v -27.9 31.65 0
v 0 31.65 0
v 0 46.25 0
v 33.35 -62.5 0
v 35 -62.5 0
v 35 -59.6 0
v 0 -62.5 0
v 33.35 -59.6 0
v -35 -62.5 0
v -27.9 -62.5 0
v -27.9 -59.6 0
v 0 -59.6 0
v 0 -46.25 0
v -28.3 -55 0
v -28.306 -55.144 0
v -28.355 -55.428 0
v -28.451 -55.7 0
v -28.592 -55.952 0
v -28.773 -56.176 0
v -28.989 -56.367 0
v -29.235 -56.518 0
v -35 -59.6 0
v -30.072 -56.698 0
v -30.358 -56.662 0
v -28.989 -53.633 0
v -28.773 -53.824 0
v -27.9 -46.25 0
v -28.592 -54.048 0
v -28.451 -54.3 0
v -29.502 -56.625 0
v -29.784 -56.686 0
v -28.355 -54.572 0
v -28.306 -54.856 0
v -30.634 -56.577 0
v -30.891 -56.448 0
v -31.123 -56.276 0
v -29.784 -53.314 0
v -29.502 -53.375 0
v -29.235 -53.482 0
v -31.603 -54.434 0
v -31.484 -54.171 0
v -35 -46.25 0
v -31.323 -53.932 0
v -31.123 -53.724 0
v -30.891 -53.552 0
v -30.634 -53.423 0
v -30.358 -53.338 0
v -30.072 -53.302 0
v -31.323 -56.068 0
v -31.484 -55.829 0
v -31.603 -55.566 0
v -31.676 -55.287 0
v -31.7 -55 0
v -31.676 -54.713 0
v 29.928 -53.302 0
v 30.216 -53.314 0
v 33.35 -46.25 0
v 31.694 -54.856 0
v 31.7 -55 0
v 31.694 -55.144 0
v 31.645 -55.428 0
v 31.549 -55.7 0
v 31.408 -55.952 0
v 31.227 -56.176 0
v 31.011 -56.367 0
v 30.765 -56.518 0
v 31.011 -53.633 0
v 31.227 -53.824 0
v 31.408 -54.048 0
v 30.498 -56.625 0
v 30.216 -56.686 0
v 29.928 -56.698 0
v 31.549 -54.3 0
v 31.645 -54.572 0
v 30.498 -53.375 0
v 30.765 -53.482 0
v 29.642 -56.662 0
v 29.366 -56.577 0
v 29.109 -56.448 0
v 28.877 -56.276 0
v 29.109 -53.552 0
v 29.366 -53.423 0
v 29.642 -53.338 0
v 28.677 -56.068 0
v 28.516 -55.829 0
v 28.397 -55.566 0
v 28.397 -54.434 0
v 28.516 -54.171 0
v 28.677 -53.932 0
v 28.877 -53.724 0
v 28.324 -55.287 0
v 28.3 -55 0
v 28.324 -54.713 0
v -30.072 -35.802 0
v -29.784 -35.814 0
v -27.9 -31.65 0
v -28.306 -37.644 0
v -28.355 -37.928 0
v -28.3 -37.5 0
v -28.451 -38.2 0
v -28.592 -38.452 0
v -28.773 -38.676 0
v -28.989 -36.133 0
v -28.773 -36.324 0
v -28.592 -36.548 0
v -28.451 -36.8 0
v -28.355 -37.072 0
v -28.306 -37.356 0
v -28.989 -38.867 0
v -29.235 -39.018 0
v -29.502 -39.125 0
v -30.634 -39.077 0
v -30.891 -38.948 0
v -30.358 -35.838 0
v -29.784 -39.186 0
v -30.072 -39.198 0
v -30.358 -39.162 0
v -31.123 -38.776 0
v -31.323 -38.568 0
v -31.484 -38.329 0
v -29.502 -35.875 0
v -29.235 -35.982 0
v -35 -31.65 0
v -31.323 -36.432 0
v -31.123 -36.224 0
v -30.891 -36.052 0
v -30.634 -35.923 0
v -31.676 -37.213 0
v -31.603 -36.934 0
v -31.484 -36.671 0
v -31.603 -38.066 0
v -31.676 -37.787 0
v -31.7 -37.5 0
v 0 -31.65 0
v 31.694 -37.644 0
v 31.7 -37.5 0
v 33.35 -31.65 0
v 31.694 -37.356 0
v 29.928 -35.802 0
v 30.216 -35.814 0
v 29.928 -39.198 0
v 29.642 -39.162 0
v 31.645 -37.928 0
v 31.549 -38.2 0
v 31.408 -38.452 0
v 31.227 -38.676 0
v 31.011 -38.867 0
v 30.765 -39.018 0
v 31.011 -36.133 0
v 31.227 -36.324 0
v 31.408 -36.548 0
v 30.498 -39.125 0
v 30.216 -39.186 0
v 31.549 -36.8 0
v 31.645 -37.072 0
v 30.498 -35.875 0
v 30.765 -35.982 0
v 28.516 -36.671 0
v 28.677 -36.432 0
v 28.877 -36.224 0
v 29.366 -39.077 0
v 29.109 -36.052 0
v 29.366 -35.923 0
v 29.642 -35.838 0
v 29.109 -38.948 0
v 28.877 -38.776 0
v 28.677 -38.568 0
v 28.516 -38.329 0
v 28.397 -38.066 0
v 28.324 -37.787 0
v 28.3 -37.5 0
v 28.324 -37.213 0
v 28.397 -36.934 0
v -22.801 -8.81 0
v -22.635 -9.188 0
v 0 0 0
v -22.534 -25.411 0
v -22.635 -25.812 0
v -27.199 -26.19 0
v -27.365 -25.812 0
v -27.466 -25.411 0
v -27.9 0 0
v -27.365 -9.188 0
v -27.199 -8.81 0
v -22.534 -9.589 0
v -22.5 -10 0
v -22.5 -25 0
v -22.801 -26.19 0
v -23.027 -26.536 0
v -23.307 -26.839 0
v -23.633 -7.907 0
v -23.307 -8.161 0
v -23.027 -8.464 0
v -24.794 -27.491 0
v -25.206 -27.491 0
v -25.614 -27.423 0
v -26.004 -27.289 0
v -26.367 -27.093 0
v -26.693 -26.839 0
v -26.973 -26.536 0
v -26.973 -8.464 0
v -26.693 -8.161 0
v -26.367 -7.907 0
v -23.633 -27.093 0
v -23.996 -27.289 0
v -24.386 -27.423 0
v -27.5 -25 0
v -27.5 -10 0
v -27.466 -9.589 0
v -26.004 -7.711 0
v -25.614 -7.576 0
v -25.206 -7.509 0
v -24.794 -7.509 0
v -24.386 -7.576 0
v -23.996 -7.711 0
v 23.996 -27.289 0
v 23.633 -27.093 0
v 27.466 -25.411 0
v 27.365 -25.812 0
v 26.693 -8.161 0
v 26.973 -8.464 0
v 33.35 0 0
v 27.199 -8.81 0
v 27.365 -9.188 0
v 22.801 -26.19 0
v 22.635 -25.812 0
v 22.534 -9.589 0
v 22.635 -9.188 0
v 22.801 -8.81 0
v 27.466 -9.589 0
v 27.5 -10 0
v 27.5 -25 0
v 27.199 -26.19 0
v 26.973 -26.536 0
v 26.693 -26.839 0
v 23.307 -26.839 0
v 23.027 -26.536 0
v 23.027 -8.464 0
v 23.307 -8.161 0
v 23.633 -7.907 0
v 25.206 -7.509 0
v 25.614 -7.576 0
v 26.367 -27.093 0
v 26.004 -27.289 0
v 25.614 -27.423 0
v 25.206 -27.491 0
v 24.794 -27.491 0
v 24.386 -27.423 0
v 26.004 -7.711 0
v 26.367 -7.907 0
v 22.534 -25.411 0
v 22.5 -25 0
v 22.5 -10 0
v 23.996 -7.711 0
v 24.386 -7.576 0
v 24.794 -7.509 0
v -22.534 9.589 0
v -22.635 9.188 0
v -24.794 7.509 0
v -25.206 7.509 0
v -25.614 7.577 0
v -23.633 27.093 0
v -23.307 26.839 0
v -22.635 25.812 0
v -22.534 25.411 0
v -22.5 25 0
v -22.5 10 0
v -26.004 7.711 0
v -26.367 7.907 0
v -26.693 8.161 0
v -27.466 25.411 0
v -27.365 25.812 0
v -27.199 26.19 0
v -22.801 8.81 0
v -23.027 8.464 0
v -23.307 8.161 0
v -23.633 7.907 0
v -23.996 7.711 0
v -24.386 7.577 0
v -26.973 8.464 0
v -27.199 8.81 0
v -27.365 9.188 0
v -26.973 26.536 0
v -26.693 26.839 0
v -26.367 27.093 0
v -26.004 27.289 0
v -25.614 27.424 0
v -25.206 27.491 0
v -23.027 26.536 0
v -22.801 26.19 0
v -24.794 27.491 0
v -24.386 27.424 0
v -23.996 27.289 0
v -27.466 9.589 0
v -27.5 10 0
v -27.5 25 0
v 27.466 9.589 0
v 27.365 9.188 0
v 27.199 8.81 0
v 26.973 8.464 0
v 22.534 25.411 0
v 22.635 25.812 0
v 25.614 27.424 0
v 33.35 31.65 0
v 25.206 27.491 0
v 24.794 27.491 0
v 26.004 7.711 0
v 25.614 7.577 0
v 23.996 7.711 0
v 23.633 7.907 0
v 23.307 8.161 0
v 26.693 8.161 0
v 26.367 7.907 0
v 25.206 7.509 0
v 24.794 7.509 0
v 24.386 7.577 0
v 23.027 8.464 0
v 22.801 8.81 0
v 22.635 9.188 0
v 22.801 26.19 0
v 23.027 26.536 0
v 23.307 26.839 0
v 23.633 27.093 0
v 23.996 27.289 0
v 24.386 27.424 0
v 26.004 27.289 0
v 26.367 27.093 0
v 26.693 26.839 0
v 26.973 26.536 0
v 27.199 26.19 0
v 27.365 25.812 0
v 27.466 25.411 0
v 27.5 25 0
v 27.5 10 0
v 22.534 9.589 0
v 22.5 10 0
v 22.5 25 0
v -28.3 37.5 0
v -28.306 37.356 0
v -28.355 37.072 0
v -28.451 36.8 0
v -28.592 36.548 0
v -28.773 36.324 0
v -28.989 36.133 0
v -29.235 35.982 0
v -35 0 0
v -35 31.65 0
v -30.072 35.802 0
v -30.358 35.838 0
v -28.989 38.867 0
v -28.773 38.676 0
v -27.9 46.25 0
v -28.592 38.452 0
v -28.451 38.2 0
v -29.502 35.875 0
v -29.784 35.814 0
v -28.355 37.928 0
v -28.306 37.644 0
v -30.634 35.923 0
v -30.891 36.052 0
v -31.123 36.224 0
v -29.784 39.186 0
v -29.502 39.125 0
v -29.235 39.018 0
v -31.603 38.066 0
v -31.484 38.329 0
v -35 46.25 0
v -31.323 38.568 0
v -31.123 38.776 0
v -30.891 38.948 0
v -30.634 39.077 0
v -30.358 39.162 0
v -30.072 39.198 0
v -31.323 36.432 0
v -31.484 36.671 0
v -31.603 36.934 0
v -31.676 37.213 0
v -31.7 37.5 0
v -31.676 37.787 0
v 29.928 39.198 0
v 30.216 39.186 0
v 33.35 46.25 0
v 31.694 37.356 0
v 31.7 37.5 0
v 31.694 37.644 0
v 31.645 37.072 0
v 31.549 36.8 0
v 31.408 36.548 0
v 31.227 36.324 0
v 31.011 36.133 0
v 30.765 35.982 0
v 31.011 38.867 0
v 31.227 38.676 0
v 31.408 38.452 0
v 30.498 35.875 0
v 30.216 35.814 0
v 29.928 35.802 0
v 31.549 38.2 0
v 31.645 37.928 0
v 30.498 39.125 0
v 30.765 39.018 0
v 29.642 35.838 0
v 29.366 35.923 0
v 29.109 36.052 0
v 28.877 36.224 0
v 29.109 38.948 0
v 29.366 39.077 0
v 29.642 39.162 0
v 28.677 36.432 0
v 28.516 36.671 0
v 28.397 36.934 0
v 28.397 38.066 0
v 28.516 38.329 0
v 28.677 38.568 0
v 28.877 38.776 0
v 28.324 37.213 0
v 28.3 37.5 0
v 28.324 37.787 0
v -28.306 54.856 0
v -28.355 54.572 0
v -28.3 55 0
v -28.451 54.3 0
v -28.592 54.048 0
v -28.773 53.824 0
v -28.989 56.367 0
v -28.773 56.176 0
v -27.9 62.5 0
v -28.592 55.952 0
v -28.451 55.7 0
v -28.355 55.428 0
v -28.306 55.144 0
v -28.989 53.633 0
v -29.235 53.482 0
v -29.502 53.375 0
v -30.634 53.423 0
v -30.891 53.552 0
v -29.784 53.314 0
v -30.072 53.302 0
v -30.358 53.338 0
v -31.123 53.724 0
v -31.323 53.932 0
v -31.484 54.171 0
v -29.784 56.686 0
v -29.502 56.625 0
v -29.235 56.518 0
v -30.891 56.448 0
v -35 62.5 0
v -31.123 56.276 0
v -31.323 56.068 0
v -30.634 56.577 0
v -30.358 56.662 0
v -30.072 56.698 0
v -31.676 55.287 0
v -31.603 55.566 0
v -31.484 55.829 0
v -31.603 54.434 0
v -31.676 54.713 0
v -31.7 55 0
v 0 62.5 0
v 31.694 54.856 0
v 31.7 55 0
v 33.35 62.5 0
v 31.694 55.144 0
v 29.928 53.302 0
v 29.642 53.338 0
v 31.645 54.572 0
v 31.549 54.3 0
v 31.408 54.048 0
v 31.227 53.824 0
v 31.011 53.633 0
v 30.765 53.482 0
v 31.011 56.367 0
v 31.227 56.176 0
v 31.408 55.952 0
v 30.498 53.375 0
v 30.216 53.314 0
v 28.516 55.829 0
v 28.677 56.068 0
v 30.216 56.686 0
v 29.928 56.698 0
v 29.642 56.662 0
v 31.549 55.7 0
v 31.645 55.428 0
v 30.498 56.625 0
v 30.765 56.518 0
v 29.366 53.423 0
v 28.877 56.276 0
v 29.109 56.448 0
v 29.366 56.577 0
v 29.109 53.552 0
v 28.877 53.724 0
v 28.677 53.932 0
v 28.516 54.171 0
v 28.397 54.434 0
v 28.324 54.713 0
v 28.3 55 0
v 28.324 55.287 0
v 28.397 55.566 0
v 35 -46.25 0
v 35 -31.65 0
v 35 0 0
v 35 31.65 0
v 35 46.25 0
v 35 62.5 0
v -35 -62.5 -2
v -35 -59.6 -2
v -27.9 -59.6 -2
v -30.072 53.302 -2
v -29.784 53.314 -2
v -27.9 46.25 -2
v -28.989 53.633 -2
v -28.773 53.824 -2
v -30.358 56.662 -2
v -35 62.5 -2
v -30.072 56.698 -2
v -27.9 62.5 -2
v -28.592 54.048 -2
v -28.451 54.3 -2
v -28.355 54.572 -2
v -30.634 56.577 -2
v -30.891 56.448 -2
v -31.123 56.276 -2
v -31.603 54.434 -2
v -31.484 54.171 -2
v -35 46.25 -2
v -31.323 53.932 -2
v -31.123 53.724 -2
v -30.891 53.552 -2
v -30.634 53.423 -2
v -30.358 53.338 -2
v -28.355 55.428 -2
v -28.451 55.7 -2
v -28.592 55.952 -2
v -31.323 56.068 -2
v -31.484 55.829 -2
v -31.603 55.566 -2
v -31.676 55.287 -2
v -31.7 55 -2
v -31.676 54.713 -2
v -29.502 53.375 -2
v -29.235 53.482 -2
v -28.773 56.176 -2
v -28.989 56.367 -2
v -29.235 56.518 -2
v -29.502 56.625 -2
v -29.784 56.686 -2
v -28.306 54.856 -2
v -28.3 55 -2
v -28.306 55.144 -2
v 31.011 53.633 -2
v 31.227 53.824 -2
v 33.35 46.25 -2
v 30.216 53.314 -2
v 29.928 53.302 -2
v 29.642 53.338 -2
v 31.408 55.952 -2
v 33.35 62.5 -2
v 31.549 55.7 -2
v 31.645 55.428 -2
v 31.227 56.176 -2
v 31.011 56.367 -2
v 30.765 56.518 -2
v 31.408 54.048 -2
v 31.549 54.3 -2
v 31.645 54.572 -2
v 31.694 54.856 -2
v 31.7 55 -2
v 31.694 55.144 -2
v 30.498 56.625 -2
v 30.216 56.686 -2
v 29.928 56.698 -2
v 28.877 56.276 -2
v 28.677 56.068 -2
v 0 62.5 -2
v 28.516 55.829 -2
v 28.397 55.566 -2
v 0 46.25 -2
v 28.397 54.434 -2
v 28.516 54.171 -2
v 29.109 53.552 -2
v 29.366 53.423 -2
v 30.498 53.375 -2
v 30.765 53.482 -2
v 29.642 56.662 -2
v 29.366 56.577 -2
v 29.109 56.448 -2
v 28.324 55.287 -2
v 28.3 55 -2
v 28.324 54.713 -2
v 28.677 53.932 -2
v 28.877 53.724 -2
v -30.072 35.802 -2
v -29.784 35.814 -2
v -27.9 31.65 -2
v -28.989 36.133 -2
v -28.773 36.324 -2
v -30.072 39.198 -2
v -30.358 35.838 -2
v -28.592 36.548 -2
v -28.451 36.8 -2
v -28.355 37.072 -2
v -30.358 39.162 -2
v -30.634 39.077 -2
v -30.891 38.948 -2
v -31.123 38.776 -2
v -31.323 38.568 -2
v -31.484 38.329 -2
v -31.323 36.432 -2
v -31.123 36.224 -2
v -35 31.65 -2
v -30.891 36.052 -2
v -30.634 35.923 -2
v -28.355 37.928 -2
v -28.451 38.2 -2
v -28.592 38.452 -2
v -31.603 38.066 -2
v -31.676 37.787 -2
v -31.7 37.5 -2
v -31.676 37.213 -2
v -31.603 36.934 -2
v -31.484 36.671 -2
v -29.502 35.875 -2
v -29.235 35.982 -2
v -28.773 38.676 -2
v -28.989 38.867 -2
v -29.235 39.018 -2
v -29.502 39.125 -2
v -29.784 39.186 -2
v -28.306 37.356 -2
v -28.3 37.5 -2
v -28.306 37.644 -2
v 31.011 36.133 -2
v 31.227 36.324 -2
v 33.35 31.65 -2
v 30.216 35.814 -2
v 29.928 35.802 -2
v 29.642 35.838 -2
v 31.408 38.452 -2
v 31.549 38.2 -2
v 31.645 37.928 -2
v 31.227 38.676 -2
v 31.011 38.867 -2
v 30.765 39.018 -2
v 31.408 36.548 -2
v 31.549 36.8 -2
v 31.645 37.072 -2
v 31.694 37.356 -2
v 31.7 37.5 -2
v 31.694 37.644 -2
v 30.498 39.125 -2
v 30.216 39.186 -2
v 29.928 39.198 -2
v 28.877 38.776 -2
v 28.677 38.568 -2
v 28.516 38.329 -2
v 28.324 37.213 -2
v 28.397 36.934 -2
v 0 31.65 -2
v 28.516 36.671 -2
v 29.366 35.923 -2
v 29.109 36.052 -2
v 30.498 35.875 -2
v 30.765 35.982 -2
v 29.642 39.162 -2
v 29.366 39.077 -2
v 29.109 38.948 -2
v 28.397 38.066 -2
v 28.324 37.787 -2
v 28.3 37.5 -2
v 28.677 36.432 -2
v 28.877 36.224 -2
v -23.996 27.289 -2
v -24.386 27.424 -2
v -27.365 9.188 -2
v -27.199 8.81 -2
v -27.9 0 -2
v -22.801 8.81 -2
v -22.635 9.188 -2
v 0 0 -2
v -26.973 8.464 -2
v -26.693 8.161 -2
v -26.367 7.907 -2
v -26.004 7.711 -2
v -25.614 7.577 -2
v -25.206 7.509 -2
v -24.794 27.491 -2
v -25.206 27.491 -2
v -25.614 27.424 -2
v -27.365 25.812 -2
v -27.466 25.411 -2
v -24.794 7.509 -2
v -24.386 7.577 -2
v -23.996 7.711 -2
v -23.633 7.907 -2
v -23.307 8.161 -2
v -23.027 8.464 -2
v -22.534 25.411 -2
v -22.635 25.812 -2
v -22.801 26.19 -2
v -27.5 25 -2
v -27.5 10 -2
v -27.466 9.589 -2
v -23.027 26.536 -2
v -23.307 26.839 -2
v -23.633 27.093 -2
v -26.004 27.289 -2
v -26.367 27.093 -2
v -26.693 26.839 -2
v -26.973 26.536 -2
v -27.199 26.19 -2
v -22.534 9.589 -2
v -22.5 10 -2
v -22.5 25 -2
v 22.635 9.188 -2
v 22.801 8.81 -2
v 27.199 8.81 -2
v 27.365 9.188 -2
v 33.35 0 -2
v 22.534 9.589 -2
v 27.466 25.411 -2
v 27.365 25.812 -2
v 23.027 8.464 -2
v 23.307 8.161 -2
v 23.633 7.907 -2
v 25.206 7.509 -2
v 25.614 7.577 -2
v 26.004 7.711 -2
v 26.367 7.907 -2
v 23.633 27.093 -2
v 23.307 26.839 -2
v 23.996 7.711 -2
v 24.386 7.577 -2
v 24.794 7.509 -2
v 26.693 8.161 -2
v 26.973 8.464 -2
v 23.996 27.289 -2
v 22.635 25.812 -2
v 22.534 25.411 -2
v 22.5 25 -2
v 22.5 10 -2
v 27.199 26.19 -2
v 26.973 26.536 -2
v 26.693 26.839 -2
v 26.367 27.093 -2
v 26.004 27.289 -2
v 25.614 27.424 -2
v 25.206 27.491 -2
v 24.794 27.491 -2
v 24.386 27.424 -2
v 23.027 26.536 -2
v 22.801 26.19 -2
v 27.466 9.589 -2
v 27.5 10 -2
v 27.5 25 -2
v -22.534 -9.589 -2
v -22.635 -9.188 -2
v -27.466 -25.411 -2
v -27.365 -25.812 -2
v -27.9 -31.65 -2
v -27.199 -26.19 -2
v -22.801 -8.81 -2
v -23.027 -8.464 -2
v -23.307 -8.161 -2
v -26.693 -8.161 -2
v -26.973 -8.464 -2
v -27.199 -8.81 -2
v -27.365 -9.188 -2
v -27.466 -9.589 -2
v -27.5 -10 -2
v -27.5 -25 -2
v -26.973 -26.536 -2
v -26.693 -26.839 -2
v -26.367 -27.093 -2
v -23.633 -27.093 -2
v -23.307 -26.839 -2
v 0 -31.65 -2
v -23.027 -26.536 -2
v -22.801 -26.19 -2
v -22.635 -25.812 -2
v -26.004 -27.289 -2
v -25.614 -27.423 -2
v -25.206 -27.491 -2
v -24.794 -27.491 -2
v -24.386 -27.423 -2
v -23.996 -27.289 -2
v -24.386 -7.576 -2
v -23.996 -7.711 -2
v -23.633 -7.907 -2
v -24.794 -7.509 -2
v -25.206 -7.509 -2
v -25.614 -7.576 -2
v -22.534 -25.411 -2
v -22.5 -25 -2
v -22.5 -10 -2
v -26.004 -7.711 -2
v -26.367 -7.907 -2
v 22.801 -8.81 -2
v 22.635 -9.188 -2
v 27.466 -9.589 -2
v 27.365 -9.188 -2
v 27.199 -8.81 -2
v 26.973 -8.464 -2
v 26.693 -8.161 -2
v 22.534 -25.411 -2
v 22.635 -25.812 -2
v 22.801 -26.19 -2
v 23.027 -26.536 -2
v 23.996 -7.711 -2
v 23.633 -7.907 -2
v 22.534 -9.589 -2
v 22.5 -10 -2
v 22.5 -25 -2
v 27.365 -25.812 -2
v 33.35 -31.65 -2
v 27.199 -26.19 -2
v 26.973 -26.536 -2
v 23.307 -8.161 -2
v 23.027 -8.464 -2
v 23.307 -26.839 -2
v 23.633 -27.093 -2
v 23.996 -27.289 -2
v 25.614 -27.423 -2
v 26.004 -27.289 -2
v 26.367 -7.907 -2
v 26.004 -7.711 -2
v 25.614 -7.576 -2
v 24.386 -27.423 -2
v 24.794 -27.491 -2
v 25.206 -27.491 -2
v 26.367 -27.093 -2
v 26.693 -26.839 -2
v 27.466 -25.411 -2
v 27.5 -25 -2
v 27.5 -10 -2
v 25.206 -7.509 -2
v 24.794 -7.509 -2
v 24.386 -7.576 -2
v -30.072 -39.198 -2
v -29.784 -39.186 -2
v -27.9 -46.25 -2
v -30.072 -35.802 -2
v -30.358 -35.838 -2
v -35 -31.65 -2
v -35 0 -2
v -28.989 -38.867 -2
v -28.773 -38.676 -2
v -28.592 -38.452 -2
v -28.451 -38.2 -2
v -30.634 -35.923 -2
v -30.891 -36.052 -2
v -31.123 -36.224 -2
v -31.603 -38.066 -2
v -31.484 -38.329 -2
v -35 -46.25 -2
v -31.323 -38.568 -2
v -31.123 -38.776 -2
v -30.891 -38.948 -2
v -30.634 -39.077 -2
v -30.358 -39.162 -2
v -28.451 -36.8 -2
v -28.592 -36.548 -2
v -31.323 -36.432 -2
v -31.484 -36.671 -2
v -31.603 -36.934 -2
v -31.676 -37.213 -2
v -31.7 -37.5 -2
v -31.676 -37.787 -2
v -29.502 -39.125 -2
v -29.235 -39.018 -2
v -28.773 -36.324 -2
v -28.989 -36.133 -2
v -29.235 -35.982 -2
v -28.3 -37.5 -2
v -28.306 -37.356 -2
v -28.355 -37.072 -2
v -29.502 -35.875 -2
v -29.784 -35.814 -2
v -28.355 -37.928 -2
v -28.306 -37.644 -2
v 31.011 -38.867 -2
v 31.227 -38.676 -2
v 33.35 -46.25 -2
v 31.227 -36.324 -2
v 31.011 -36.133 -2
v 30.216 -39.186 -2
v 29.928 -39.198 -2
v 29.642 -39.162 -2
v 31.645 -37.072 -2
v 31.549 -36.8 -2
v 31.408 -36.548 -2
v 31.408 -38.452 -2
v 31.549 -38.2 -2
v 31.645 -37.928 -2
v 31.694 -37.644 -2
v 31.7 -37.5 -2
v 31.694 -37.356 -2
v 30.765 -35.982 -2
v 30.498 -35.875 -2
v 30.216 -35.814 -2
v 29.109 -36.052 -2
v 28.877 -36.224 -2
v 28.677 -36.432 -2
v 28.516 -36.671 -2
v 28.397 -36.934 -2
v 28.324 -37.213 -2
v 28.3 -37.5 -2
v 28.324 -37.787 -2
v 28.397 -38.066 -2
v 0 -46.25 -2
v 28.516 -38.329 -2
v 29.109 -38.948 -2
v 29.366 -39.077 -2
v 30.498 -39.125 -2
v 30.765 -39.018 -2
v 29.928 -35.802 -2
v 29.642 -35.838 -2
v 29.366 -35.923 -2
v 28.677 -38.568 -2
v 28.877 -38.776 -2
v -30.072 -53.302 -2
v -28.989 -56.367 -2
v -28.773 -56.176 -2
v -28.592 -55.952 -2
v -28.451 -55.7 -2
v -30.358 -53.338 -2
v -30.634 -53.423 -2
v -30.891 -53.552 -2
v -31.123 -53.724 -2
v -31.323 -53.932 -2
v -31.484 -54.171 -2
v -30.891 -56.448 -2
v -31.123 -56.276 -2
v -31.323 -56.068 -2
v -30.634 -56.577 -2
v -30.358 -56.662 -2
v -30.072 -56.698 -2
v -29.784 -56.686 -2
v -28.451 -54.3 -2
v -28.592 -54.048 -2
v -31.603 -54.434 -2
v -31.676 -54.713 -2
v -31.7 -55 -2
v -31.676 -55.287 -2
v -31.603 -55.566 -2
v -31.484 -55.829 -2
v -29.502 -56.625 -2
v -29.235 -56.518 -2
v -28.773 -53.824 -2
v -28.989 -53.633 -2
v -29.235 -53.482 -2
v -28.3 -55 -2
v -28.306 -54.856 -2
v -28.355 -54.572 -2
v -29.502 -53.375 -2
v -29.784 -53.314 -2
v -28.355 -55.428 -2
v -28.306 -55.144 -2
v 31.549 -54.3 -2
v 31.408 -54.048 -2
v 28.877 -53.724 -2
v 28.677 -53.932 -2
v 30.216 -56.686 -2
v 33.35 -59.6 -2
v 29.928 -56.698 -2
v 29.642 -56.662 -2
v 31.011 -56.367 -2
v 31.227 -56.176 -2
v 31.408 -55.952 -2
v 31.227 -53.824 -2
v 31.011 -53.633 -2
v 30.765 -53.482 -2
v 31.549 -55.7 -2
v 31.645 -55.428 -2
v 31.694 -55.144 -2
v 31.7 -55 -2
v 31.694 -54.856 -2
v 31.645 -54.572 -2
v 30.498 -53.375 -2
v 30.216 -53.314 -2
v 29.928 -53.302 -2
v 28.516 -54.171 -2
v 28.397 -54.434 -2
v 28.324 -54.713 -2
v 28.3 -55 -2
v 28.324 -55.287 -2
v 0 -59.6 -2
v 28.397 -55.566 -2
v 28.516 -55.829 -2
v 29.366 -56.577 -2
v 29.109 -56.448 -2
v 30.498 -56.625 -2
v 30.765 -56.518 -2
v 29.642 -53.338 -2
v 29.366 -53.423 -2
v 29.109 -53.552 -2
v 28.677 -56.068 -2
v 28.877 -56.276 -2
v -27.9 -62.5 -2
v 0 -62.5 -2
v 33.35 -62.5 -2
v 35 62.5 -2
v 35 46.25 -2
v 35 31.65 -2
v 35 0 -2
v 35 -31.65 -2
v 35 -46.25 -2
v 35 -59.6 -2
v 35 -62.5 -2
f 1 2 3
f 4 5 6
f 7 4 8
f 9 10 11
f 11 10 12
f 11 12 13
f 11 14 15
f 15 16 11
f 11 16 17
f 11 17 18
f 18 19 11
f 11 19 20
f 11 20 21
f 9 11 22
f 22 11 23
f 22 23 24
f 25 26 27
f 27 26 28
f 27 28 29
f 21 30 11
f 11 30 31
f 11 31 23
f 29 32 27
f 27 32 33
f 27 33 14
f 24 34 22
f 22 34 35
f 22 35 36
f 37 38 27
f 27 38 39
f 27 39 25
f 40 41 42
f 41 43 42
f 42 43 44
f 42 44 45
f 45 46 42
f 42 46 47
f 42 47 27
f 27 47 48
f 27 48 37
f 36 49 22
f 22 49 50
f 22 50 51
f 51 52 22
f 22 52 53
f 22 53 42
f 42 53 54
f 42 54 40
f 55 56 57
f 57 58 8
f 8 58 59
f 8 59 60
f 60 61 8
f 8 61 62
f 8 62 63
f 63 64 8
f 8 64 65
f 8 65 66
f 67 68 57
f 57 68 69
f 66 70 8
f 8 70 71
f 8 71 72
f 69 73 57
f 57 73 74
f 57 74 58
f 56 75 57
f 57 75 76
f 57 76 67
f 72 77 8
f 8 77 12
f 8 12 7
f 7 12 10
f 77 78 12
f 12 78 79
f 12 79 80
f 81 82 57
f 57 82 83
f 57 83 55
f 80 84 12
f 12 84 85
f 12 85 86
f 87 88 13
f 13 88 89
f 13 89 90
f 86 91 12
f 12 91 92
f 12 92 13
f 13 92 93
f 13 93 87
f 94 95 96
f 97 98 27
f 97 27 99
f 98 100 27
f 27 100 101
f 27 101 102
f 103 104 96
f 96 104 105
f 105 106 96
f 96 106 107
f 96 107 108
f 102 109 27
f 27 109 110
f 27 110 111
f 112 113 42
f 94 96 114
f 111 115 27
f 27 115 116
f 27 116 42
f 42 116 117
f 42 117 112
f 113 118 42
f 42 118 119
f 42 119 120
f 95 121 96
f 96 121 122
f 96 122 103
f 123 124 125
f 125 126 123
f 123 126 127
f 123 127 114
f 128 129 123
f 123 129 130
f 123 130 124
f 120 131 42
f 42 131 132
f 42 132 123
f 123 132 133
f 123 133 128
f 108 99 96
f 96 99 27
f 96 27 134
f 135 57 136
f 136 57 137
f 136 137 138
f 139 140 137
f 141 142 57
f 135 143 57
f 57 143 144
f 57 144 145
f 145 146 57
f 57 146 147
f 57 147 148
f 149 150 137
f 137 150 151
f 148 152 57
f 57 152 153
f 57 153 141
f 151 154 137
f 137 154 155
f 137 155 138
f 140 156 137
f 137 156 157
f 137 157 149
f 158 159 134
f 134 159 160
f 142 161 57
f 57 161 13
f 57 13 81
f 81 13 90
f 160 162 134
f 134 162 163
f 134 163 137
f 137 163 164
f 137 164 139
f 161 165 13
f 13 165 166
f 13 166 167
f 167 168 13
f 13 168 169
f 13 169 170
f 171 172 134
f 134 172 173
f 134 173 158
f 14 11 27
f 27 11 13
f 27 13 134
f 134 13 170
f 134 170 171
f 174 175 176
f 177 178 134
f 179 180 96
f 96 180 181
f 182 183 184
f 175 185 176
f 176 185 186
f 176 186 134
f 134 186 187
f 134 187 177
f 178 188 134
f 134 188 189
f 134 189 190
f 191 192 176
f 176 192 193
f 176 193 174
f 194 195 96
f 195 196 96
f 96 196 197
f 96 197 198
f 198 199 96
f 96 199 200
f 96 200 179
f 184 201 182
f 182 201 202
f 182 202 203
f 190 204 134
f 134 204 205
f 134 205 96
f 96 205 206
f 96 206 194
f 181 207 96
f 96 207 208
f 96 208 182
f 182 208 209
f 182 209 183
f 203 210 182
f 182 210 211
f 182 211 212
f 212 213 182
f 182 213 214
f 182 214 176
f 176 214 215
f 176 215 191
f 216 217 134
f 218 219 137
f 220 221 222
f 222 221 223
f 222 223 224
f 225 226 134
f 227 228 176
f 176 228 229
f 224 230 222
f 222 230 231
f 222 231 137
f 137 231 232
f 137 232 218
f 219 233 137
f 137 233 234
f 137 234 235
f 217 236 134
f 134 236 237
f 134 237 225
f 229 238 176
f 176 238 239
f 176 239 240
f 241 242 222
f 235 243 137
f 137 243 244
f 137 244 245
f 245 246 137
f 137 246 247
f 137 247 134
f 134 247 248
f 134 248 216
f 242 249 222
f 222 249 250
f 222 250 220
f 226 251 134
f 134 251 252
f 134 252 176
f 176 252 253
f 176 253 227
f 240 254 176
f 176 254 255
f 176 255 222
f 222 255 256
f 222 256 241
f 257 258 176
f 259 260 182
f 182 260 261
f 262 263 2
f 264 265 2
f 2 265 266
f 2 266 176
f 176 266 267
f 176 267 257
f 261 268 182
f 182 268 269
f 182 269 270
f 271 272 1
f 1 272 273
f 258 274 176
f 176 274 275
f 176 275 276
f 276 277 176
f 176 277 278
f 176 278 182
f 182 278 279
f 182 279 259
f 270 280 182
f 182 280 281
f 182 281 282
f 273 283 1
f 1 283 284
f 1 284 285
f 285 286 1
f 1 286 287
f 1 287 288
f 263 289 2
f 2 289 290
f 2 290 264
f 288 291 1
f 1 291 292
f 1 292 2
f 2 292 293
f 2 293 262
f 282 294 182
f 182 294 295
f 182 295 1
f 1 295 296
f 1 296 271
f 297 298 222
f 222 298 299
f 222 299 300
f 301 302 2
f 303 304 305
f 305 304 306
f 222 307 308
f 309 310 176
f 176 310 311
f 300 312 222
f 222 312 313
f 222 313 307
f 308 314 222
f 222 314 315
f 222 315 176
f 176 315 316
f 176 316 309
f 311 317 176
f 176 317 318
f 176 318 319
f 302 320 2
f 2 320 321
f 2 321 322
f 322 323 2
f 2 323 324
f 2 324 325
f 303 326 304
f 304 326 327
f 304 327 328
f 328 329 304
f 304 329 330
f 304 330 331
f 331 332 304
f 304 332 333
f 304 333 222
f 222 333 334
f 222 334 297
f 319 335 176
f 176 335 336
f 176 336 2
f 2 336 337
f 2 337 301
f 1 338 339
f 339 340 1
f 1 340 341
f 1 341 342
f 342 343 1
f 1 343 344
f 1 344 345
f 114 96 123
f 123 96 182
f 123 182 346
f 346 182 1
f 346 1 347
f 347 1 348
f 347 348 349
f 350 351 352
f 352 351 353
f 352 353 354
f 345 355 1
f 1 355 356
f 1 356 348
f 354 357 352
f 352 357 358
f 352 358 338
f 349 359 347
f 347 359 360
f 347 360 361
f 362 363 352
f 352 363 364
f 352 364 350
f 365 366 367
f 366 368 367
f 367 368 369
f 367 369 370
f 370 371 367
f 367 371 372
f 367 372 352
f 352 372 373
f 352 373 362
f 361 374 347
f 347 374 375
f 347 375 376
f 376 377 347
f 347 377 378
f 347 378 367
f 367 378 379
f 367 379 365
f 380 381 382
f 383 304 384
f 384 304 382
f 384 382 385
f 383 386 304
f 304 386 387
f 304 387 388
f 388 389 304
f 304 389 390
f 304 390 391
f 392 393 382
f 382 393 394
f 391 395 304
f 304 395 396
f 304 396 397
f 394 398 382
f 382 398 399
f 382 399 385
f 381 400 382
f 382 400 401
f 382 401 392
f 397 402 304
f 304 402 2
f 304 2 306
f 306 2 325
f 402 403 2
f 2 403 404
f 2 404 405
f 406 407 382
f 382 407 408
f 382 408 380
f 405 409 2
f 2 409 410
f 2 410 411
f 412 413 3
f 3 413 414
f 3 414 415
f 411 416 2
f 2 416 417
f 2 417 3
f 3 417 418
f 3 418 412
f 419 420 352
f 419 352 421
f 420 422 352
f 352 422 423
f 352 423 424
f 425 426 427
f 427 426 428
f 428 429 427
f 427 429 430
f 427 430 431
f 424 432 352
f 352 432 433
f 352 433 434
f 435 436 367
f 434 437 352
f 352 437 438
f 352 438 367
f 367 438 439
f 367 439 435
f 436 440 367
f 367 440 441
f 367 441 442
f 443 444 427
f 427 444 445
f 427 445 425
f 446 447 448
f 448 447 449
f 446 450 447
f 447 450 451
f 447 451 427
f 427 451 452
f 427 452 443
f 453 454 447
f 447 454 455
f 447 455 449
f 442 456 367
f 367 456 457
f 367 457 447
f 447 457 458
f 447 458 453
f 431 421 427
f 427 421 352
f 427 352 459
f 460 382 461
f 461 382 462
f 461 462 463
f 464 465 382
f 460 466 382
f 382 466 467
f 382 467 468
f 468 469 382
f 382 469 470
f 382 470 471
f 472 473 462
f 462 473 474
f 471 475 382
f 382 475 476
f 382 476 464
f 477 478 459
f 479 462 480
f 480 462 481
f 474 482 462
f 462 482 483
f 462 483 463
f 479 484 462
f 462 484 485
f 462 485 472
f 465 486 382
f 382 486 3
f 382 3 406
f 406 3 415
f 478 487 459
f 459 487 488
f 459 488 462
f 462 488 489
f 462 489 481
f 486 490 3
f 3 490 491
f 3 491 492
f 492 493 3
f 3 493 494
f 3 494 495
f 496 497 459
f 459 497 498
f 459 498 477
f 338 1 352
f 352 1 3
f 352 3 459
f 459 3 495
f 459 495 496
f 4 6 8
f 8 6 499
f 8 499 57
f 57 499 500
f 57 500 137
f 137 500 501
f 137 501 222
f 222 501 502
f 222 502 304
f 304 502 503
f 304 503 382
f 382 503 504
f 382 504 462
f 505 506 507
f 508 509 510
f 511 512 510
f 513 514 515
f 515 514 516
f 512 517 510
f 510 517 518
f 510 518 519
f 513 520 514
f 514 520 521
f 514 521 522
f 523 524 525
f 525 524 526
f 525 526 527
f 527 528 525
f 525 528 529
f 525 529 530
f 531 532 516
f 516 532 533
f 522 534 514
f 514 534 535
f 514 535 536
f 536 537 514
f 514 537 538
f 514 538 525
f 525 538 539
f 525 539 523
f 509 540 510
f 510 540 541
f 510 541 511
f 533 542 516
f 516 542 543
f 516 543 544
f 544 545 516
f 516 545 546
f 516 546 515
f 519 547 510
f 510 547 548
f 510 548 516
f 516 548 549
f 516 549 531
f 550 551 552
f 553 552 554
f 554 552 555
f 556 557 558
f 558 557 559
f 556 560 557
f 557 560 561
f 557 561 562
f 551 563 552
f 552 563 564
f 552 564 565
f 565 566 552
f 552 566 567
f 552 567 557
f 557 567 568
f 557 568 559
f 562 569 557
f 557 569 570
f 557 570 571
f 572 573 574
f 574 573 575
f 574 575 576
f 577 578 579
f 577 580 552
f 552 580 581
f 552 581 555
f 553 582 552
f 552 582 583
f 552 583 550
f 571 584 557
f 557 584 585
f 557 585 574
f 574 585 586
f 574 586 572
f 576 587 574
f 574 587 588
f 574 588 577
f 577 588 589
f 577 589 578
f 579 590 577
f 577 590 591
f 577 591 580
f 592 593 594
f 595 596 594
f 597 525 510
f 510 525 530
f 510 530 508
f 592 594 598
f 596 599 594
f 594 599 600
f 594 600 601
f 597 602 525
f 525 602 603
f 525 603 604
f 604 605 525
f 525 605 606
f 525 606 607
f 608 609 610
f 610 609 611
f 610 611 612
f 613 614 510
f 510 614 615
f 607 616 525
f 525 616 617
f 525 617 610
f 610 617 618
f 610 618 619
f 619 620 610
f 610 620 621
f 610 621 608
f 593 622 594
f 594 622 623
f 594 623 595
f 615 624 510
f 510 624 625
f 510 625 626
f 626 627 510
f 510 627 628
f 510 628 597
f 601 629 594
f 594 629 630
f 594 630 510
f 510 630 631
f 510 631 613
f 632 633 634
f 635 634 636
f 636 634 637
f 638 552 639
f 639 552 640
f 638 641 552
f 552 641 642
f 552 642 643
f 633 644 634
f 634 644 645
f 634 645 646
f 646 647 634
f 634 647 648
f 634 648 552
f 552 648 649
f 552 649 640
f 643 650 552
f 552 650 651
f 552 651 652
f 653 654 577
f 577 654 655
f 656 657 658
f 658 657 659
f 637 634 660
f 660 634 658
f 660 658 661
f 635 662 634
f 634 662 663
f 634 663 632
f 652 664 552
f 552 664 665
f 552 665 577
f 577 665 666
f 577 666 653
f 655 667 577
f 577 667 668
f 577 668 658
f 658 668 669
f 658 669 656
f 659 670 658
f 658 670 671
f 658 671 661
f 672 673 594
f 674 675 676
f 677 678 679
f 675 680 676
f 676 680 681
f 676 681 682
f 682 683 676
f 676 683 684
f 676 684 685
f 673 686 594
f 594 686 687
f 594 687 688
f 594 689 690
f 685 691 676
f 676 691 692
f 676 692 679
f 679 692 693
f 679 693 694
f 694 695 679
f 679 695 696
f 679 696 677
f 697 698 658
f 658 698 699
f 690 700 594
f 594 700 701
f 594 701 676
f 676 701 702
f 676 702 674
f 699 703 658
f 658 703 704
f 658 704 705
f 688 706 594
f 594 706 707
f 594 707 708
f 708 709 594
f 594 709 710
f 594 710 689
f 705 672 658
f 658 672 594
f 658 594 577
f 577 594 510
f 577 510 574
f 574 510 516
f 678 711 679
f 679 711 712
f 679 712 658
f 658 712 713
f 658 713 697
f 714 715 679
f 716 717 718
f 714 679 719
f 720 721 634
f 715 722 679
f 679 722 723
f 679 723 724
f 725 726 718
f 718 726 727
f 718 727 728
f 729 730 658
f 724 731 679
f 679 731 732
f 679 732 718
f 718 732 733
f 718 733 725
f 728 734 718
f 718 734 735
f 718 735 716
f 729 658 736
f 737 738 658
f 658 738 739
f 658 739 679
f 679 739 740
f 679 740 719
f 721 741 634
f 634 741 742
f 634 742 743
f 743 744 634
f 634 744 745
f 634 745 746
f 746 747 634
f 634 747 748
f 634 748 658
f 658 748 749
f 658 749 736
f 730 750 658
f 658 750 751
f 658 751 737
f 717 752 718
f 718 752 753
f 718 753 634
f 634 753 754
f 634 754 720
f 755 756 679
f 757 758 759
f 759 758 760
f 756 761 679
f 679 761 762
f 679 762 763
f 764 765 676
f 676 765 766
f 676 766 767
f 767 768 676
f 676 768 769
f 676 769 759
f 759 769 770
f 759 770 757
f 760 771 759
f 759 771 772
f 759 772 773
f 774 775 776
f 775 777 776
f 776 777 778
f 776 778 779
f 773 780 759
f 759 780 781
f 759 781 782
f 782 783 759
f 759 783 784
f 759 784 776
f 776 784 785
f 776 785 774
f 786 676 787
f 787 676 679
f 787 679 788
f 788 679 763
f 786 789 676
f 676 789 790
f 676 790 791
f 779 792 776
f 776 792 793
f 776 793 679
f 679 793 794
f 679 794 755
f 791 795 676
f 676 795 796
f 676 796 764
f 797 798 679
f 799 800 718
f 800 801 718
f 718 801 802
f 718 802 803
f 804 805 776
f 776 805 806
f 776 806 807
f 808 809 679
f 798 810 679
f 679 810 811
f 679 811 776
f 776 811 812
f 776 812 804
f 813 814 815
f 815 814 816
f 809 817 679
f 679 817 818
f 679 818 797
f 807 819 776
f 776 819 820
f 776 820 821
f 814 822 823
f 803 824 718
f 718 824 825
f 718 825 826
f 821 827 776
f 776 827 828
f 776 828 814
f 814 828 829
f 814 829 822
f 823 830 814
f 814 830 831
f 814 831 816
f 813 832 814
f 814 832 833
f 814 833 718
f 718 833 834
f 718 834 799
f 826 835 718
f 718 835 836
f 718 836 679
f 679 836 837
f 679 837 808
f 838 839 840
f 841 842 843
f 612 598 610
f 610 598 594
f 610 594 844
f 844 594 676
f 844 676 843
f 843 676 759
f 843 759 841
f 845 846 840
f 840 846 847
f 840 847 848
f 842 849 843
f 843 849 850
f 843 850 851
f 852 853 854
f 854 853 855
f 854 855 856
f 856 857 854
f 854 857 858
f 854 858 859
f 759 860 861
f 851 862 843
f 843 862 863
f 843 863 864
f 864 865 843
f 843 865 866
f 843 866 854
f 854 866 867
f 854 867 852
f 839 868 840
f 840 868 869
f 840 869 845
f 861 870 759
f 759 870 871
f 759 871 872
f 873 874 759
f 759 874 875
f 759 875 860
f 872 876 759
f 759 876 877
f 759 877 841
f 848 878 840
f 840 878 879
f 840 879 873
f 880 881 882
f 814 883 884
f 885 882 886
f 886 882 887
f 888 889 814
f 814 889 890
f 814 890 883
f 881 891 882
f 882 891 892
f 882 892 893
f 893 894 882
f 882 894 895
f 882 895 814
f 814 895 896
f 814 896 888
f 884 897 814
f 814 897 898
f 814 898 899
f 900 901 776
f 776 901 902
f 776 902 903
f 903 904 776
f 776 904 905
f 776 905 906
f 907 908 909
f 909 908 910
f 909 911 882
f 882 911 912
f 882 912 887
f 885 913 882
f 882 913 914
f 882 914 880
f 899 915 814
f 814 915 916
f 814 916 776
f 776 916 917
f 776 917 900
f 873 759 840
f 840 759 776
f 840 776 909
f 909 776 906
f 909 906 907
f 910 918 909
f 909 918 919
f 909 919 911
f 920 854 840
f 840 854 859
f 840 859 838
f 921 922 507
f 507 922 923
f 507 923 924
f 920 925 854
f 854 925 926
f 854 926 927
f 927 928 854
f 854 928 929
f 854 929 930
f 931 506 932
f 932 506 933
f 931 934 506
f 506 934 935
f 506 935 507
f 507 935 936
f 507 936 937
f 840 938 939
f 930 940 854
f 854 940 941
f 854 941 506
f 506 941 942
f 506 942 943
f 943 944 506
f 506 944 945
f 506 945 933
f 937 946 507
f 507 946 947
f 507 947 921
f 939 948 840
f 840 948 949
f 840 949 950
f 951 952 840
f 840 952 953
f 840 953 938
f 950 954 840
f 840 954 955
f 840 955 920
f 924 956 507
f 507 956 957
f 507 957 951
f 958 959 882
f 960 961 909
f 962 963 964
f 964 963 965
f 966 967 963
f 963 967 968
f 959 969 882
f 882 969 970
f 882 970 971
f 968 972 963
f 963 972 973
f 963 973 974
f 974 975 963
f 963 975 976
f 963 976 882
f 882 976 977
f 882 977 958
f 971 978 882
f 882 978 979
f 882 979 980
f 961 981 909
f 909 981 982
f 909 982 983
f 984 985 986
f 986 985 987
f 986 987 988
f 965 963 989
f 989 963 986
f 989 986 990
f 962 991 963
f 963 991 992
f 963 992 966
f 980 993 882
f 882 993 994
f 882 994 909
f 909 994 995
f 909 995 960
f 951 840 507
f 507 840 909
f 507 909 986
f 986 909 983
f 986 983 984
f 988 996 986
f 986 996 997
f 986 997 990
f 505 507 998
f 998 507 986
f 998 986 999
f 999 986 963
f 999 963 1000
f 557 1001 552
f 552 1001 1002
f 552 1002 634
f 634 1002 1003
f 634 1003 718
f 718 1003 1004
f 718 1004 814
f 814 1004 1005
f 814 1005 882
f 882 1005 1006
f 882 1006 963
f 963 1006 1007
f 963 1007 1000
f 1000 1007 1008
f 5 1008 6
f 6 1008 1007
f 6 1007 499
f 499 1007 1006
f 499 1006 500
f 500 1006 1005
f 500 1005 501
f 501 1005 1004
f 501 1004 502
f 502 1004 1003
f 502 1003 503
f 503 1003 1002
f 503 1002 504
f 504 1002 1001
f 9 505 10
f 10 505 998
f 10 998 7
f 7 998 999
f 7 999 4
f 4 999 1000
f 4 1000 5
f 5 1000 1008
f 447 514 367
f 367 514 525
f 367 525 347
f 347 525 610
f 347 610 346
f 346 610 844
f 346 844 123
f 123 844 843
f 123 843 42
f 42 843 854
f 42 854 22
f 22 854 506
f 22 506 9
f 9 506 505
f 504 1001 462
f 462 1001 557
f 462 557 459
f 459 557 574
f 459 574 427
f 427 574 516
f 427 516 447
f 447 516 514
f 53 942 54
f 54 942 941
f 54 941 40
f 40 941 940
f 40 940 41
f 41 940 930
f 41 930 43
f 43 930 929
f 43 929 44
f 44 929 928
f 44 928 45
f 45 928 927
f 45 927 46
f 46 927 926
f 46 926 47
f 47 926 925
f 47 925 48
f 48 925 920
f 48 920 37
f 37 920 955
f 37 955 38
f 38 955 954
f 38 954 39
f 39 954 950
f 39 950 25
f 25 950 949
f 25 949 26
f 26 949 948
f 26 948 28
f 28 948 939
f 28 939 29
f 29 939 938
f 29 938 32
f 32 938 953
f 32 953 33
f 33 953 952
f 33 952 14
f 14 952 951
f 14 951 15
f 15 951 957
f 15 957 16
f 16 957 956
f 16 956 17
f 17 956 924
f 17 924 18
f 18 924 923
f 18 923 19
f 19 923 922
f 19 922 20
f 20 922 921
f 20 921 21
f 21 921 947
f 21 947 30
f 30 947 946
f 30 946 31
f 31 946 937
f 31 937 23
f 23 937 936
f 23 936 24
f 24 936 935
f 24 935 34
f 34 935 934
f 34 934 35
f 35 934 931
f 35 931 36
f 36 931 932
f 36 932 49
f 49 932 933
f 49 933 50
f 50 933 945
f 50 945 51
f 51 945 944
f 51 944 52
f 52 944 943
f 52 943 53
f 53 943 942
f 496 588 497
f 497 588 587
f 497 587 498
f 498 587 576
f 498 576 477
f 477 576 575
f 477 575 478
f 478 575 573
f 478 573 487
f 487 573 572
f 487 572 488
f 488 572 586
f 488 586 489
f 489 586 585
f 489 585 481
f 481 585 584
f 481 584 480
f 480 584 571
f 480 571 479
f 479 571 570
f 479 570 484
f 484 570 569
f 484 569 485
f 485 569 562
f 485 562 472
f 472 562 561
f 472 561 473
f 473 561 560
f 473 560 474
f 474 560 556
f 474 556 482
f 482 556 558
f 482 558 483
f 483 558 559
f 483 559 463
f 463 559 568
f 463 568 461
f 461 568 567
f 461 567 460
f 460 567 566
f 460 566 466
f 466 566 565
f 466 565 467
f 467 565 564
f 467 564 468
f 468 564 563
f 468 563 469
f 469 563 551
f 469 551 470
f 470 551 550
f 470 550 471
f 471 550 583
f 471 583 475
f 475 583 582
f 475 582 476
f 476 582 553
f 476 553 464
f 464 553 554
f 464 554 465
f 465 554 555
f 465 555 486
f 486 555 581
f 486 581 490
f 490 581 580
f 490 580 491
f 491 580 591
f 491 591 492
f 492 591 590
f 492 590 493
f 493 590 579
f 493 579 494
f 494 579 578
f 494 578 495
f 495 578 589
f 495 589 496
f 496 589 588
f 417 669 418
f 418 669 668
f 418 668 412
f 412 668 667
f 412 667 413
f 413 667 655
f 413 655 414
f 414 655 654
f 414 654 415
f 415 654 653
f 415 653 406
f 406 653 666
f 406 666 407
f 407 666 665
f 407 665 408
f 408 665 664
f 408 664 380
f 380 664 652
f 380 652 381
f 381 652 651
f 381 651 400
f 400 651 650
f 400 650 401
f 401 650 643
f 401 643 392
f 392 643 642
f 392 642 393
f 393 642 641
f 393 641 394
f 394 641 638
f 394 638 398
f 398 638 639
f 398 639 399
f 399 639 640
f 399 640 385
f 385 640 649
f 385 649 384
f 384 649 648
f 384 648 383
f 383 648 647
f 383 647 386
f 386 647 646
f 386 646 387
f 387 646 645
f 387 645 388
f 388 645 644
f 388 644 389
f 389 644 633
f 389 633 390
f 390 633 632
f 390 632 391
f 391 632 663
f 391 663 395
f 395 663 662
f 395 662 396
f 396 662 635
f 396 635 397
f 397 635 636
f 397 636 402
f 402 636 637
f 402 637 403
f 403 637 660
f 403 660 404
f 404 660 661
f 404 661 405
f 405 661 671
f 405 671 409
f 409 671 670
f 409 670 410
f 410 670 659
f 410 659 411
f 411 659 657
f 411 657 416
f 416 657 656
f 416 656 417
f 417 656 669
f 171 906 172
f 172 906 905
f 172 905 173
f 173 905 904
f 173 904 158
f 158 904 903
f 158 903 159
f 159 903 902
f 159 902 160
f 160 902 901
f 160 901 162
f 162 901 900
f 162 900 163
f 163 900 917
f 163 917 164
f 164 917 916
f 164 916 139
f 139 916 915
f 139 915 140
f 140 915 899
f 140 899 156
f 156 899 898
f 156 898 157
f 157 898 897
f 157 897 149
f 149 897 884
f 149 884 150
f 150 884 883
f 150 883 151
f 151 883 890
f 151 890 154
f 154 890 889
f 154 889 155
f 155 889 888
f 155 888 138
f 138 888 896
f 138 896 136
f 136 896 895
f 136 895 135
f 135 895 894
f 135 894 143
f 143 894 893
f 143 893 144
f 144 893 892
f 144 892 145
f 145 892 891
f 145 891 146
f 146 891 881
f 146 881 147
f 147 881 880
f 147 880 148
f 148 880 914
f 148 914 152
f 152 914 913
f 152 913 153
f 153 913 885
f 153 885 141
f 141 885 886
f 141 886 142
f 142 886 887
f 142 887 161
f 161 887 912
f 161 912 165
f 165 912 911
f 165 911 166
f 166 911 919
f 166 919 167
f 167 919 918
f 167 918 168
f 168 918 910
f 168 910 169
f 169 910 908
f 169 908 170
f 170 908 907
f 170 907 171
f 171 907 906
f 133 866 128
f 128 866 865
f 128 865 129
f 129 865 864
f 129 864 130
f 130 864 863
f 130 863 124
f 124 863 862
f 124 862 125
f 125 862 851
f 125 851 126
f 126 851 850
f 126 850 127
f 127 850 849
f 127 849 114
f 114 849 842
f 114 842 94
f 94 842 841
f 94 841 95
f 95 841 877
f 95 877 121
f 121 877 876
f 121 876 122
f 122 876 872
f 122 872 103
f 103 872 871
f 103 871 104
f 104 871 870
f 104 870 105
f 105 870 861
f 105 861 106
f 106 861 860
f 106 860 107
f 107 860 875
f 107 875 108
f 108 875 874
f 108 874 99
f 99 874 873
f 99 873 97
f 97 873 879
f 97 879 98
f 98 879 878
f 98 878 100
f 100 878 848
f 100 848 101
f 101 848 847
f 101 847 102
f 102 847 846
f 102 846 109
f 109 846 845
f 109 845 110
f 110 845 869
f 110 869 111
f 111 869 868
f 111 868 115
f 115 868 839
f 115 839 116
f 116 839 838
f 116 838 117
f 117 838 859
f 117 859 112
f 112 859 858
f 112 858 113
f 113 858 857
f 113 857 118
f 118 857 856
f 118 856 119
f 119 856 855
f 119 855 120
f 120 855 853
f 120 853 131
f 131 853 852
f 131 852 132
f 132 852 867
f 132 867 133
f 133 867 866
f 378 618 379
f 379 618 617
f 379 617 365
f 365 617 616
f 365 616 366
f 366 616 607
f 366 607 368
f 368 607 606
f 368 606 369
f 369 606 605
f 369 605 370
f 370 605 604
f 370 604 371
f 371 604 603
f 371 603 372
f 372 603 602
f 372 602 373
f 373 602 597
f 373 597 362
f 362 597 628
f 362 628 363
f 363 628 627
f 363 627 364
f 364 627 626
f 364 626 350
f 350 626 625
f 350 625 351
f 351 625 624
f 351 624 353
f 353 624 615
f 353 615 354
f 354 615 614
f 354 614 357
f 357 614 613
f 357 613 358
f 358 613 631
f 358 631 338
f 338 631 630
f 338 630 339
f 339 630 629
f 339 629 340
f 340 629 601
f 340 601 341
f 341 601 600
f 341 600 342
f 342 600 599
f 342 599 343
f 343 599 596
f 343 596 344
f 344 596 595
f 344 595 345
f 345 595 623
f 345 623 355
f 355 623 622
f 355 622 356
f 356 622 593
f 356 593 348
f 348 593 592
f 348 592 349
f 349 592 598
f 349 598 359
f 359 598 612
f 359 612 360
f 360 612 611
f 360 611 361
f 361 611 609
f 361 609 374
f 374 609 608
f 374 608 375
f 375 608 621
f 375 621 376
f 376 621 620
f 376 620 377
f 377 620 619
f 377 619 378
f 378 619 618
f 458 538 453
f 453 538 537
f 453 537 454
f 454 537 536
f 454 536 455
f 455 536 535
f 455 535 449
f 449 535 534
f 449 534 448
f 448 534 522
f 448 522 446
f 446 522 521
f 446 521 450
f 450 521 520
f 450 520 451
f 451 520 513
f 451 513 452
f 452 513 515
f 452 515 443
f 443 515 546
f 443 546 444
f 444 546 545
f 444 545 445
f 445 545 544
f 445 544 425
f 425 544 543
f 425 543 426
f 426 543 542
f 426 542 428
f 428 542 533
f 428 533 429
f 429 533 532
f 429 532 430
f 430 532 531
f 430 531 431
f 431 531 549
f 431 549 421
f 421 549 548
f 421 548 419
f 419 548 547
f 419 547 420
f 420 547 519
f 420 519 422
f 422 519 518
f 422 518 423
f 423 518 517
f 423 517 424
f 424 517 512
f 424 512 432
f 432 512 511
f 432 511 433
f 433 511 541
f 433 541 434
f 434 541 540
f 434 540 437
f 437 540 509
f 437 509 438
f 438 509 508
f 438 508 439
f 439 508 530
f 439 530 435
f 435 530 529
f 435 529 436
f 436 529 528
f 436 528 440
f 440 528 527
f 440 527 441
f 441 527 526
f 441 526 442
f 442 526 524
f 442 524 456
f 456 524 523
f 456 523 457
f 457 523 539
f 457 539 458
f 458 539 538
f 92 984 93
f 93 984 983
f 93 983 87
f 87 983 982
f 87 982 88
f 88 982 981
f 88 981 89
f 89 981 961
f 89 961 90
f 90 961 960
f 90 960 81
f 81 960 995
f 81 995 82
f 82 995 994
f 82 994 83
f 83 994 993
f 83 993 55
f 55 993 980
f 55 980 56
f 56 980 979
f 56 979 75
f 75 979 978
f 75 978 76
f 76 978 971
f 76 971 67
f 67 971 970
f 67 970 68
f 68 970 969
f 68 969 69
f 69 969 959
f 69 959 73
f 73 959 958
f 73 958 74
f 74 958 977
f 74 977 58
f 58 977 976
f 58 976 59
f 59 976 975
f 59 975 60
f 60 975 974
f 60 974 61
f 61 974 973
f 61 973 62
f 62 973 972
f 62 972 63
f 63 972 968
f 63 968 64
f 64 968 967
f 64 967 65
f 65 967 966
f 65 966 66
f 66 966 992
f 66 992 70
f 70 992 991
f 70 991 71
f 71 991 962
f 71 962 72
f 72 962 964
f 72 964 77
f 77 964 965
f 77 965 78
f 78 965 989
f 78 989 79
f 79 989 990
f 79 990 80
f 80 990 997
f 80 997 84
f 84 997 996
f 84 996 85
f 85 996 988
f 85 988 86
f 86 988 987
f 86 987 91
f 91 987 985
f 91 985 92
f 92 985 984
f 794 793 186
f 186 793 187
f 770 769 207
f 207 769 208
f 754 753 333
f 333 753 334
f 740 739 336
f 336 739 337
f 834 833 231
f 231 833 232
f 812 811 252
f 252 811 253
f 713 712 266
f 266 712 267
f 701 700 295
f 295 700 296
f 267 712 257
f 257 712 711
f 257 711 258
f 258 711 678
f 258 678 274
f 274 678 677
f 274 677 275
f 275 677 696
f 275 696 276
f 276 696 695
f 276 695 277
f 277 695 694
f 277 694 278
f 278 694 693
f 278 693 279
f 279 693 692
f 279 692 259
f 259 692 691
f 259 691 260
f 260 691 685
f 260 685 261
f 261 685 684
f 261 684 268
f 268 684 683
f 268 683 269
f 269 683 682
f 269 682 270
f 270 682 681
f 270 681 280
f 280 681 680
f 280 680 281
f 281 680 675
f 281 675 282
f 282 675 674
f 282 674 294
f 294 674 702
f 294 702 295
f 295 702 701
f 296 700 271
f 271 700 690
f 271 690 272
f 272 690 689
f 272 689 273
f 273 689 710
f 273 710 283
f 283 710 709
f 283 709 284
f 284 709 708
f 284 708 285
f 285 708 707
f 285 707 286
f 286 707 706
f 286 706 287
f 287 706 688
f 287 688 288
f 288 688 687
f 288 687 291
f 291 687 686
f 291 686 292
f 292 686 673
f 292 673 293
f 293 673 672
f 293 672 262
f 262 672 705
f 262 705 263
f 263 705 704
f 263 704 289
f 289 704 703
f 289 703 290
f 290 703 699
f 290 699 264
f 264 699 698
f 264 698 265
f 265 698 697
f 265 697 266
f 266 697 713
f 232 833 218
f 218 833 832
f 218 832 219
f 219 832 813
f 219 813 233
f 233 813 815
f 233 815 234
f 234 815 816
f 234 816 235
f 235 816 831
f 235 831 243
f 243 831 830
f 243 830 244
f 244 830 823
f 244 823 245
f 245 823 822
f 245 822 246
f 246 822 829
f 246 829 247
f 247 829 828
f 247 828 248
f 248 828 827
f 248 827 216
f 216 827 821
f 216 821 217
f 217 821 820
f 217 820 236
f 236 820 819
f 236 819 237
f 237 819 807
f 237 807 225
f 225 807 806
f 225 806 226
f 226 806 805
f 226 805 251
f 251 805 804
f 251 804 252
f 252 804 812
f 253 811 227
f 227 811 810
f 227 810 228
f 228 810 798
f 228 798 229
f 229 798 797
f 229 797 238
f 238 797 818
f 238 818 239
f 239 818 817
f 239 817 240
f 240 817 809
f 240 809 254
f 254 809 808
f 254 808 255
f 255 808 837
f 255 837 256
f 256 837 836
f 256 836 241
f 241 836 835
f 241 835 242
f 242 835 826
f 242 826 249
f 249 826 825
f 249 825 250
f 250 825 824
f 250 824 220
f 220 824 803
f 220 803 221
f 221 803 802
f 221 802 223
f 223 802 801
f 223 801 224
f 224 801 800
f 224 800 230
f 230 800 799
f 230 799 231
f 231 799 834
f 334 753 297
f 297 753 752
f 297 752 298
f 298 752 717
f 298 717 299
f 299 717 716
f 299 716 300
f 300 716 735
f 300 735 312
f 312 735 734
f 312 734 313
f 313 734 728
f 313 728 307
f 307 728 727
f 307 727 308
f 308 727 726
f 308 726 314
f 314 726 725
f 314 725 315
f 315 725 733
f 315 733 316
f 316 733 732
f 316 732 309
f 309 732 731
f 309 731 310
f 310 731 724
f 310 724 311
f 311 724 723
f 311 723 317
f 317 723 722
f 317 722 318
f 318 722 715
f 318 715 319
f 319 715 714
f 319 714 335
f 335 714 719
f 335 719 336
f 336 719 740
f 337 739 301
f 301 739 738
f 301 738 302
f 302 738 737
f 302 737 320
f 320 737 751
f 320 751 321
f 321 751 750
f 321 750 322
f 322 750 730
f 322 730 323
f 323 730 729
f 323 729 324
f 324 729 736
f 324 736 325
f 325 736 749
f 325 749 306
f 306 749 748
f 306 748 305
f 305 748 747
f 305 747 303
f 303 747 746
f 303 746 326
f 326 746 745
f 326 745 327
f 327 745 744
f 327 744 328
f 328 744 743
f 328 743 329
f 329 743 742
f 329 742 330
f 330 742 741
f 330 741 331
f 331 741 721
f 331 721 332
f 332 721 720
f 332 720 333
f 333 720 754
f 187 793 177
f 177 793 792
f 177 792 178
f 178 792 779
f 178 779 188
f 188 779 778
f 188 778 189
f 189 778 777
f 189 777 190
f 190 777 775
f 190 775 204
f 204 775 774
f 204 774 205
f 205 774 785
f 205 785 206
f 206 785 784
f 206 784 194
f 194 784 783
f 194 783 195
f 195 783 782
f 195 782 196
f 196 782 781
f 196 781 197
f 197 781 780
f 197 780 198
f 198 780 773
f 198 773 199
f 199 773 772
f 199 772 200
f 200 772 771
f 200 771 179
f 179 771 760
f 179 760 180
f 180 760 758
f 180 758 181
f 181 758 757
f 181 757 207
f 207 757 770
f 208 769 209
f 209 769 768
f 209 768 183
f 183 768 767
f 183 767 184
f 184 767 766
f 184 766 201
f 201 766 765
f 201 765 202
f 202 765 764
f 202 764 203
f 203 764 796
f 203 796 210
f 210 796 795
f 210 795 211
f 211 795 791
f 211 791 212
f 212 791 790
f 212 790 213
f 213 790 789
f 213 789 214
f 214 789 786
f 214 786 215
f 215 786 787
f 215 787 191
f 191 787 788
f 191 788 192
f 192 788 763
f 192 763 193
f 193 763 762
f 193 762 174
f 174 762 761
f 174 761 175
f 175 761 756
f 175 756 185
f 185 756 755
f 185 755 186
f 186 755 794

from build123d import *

# Parameters (mm, degrees)
SKETCH1_W                   = 70
SKETCH1_H                   = 125
BOSS_EXTRUDE1_DEPTH         = 2
LO_XUYEN_M3_D3_4_DEPTH      = 72.660658663
LO_XUYEN_M3_D3_4_DEPTH_BACK = 72.660658663
SKETCH2_R                   = 1.7
THAN_RANH_DEPTH             = 72.660658663
THAN_RANH_DEPTH_BACK        = 72.660658663
SKETCH3_W                   = 5
SKETCH3_H                   = 15
DAU_RANH_R2_5_DEPTH         = 72.660658663
DAU_RANH_R2_5_DEPTH_BACK    = 72.660658663
SKETCH4_R                   = 2.5


with BuildPart() as part:
    # Sketch1 → Boss-Extrude1 (new body)
    with BuildSketch(Plane.XY):
        Rectangle(SKETCH1_W, SKETCH1_H)
    extrude(amount=-BOSS_EXTRUDE1_DEPTH)

    # Sketch2 → Lo_xuyen_M3_D3_4 (cut, two sides: drawn at the far end of the back side and taken through both)
    with BuildSketch(Plane.XY.offset(-LO_XUYEN_M3_D3_4_DEPTH_BACK)):
        with Locations((-30, -55)):
            Circle(SKETCH2_R)
        with Locations((-30, -37.5)):
            Circle(SKETCH2_R)
        with Locations((-30, 37.5)):
            Circle(SKETCH2_R)
        with Locations((-30, 55)):
            Circle(SKETCH2_R)
        with Locations((30, -55)):
            Circle(SKETCH2_R)
        with Locations((30, -37.5)):
            Circle(SKETCH2_R)
        with Locations((30, 37.5)):
            Circle(SKETCH2_R)
        with Locations((30, 55)):
            Circle(SKETCH2_R)
    extrude(amount=LO_XUYEN_M3_D3_4_DEPTH + LO_XUYEN_M3_D3_4_DEPTH_BACK, mode=Mode.SUBTRACT)

    # Sketch3 → Than_ranh (cut, two sides: drawn at the far end of the back side and taken through both)
    with BuildSketch(Plane.XY.offset(-THAN_RANH_DEPTH_BACK)):
        with Locations((-25, -17.5)):
            Rectangle(SKETCH3_W, SKETCH3_H)
        with Locations((-25, 17.5)):
            Rectangle(SKETCH3_W, SKETCH3_H)
        with Locations((25, -17.5)):
            Rectangle(SKETCH3_W, SKETCH3_H)
        with Locations((25, 17.5)):
            Rectangle(SKETCH3_W, SKETCH3_H)
    extrude(amount=THAN_RANH_DEPTH + THAN_RANH_DEPTH_BACK, mode=Mode.SUBTRACT)

    # Sketch4 → Dau_ranh_R2_5 (cut, two sides: drawn at the far end of the back side and taken through both)
    with BuildSketch(Plane.XY.offset(-DAU_RANH_R2_5_DEPTH_BACK)):
        with Locations((-25, -25)):
            Circle(SKETCH4_R)
        with Locations((-25, -10)):
            Circle(SKETCH4_R)
        with Locations((-25, 10)):
            Circle(SKETCH4_R)
        with Locations((-25, 25)):
            Circle(SKETCH4_R)
        with Locations((25, -25)):
            Circle(SKETCH4_R)
        with Locations((25, -10)):
            Circle(SKETCH4_R)
        with Locations((25, 10)):
            Circle(SKETCH4_R)
        with Locations((25, 25)):
            Circle(SKETCH4_R)
    extrude(amount=DAU_RANH_R2_5_DEPTH + DAU_RANH_R2_5_DEPTH_BACK, mode=Mode.SUBTRACT)


solid = part.part
